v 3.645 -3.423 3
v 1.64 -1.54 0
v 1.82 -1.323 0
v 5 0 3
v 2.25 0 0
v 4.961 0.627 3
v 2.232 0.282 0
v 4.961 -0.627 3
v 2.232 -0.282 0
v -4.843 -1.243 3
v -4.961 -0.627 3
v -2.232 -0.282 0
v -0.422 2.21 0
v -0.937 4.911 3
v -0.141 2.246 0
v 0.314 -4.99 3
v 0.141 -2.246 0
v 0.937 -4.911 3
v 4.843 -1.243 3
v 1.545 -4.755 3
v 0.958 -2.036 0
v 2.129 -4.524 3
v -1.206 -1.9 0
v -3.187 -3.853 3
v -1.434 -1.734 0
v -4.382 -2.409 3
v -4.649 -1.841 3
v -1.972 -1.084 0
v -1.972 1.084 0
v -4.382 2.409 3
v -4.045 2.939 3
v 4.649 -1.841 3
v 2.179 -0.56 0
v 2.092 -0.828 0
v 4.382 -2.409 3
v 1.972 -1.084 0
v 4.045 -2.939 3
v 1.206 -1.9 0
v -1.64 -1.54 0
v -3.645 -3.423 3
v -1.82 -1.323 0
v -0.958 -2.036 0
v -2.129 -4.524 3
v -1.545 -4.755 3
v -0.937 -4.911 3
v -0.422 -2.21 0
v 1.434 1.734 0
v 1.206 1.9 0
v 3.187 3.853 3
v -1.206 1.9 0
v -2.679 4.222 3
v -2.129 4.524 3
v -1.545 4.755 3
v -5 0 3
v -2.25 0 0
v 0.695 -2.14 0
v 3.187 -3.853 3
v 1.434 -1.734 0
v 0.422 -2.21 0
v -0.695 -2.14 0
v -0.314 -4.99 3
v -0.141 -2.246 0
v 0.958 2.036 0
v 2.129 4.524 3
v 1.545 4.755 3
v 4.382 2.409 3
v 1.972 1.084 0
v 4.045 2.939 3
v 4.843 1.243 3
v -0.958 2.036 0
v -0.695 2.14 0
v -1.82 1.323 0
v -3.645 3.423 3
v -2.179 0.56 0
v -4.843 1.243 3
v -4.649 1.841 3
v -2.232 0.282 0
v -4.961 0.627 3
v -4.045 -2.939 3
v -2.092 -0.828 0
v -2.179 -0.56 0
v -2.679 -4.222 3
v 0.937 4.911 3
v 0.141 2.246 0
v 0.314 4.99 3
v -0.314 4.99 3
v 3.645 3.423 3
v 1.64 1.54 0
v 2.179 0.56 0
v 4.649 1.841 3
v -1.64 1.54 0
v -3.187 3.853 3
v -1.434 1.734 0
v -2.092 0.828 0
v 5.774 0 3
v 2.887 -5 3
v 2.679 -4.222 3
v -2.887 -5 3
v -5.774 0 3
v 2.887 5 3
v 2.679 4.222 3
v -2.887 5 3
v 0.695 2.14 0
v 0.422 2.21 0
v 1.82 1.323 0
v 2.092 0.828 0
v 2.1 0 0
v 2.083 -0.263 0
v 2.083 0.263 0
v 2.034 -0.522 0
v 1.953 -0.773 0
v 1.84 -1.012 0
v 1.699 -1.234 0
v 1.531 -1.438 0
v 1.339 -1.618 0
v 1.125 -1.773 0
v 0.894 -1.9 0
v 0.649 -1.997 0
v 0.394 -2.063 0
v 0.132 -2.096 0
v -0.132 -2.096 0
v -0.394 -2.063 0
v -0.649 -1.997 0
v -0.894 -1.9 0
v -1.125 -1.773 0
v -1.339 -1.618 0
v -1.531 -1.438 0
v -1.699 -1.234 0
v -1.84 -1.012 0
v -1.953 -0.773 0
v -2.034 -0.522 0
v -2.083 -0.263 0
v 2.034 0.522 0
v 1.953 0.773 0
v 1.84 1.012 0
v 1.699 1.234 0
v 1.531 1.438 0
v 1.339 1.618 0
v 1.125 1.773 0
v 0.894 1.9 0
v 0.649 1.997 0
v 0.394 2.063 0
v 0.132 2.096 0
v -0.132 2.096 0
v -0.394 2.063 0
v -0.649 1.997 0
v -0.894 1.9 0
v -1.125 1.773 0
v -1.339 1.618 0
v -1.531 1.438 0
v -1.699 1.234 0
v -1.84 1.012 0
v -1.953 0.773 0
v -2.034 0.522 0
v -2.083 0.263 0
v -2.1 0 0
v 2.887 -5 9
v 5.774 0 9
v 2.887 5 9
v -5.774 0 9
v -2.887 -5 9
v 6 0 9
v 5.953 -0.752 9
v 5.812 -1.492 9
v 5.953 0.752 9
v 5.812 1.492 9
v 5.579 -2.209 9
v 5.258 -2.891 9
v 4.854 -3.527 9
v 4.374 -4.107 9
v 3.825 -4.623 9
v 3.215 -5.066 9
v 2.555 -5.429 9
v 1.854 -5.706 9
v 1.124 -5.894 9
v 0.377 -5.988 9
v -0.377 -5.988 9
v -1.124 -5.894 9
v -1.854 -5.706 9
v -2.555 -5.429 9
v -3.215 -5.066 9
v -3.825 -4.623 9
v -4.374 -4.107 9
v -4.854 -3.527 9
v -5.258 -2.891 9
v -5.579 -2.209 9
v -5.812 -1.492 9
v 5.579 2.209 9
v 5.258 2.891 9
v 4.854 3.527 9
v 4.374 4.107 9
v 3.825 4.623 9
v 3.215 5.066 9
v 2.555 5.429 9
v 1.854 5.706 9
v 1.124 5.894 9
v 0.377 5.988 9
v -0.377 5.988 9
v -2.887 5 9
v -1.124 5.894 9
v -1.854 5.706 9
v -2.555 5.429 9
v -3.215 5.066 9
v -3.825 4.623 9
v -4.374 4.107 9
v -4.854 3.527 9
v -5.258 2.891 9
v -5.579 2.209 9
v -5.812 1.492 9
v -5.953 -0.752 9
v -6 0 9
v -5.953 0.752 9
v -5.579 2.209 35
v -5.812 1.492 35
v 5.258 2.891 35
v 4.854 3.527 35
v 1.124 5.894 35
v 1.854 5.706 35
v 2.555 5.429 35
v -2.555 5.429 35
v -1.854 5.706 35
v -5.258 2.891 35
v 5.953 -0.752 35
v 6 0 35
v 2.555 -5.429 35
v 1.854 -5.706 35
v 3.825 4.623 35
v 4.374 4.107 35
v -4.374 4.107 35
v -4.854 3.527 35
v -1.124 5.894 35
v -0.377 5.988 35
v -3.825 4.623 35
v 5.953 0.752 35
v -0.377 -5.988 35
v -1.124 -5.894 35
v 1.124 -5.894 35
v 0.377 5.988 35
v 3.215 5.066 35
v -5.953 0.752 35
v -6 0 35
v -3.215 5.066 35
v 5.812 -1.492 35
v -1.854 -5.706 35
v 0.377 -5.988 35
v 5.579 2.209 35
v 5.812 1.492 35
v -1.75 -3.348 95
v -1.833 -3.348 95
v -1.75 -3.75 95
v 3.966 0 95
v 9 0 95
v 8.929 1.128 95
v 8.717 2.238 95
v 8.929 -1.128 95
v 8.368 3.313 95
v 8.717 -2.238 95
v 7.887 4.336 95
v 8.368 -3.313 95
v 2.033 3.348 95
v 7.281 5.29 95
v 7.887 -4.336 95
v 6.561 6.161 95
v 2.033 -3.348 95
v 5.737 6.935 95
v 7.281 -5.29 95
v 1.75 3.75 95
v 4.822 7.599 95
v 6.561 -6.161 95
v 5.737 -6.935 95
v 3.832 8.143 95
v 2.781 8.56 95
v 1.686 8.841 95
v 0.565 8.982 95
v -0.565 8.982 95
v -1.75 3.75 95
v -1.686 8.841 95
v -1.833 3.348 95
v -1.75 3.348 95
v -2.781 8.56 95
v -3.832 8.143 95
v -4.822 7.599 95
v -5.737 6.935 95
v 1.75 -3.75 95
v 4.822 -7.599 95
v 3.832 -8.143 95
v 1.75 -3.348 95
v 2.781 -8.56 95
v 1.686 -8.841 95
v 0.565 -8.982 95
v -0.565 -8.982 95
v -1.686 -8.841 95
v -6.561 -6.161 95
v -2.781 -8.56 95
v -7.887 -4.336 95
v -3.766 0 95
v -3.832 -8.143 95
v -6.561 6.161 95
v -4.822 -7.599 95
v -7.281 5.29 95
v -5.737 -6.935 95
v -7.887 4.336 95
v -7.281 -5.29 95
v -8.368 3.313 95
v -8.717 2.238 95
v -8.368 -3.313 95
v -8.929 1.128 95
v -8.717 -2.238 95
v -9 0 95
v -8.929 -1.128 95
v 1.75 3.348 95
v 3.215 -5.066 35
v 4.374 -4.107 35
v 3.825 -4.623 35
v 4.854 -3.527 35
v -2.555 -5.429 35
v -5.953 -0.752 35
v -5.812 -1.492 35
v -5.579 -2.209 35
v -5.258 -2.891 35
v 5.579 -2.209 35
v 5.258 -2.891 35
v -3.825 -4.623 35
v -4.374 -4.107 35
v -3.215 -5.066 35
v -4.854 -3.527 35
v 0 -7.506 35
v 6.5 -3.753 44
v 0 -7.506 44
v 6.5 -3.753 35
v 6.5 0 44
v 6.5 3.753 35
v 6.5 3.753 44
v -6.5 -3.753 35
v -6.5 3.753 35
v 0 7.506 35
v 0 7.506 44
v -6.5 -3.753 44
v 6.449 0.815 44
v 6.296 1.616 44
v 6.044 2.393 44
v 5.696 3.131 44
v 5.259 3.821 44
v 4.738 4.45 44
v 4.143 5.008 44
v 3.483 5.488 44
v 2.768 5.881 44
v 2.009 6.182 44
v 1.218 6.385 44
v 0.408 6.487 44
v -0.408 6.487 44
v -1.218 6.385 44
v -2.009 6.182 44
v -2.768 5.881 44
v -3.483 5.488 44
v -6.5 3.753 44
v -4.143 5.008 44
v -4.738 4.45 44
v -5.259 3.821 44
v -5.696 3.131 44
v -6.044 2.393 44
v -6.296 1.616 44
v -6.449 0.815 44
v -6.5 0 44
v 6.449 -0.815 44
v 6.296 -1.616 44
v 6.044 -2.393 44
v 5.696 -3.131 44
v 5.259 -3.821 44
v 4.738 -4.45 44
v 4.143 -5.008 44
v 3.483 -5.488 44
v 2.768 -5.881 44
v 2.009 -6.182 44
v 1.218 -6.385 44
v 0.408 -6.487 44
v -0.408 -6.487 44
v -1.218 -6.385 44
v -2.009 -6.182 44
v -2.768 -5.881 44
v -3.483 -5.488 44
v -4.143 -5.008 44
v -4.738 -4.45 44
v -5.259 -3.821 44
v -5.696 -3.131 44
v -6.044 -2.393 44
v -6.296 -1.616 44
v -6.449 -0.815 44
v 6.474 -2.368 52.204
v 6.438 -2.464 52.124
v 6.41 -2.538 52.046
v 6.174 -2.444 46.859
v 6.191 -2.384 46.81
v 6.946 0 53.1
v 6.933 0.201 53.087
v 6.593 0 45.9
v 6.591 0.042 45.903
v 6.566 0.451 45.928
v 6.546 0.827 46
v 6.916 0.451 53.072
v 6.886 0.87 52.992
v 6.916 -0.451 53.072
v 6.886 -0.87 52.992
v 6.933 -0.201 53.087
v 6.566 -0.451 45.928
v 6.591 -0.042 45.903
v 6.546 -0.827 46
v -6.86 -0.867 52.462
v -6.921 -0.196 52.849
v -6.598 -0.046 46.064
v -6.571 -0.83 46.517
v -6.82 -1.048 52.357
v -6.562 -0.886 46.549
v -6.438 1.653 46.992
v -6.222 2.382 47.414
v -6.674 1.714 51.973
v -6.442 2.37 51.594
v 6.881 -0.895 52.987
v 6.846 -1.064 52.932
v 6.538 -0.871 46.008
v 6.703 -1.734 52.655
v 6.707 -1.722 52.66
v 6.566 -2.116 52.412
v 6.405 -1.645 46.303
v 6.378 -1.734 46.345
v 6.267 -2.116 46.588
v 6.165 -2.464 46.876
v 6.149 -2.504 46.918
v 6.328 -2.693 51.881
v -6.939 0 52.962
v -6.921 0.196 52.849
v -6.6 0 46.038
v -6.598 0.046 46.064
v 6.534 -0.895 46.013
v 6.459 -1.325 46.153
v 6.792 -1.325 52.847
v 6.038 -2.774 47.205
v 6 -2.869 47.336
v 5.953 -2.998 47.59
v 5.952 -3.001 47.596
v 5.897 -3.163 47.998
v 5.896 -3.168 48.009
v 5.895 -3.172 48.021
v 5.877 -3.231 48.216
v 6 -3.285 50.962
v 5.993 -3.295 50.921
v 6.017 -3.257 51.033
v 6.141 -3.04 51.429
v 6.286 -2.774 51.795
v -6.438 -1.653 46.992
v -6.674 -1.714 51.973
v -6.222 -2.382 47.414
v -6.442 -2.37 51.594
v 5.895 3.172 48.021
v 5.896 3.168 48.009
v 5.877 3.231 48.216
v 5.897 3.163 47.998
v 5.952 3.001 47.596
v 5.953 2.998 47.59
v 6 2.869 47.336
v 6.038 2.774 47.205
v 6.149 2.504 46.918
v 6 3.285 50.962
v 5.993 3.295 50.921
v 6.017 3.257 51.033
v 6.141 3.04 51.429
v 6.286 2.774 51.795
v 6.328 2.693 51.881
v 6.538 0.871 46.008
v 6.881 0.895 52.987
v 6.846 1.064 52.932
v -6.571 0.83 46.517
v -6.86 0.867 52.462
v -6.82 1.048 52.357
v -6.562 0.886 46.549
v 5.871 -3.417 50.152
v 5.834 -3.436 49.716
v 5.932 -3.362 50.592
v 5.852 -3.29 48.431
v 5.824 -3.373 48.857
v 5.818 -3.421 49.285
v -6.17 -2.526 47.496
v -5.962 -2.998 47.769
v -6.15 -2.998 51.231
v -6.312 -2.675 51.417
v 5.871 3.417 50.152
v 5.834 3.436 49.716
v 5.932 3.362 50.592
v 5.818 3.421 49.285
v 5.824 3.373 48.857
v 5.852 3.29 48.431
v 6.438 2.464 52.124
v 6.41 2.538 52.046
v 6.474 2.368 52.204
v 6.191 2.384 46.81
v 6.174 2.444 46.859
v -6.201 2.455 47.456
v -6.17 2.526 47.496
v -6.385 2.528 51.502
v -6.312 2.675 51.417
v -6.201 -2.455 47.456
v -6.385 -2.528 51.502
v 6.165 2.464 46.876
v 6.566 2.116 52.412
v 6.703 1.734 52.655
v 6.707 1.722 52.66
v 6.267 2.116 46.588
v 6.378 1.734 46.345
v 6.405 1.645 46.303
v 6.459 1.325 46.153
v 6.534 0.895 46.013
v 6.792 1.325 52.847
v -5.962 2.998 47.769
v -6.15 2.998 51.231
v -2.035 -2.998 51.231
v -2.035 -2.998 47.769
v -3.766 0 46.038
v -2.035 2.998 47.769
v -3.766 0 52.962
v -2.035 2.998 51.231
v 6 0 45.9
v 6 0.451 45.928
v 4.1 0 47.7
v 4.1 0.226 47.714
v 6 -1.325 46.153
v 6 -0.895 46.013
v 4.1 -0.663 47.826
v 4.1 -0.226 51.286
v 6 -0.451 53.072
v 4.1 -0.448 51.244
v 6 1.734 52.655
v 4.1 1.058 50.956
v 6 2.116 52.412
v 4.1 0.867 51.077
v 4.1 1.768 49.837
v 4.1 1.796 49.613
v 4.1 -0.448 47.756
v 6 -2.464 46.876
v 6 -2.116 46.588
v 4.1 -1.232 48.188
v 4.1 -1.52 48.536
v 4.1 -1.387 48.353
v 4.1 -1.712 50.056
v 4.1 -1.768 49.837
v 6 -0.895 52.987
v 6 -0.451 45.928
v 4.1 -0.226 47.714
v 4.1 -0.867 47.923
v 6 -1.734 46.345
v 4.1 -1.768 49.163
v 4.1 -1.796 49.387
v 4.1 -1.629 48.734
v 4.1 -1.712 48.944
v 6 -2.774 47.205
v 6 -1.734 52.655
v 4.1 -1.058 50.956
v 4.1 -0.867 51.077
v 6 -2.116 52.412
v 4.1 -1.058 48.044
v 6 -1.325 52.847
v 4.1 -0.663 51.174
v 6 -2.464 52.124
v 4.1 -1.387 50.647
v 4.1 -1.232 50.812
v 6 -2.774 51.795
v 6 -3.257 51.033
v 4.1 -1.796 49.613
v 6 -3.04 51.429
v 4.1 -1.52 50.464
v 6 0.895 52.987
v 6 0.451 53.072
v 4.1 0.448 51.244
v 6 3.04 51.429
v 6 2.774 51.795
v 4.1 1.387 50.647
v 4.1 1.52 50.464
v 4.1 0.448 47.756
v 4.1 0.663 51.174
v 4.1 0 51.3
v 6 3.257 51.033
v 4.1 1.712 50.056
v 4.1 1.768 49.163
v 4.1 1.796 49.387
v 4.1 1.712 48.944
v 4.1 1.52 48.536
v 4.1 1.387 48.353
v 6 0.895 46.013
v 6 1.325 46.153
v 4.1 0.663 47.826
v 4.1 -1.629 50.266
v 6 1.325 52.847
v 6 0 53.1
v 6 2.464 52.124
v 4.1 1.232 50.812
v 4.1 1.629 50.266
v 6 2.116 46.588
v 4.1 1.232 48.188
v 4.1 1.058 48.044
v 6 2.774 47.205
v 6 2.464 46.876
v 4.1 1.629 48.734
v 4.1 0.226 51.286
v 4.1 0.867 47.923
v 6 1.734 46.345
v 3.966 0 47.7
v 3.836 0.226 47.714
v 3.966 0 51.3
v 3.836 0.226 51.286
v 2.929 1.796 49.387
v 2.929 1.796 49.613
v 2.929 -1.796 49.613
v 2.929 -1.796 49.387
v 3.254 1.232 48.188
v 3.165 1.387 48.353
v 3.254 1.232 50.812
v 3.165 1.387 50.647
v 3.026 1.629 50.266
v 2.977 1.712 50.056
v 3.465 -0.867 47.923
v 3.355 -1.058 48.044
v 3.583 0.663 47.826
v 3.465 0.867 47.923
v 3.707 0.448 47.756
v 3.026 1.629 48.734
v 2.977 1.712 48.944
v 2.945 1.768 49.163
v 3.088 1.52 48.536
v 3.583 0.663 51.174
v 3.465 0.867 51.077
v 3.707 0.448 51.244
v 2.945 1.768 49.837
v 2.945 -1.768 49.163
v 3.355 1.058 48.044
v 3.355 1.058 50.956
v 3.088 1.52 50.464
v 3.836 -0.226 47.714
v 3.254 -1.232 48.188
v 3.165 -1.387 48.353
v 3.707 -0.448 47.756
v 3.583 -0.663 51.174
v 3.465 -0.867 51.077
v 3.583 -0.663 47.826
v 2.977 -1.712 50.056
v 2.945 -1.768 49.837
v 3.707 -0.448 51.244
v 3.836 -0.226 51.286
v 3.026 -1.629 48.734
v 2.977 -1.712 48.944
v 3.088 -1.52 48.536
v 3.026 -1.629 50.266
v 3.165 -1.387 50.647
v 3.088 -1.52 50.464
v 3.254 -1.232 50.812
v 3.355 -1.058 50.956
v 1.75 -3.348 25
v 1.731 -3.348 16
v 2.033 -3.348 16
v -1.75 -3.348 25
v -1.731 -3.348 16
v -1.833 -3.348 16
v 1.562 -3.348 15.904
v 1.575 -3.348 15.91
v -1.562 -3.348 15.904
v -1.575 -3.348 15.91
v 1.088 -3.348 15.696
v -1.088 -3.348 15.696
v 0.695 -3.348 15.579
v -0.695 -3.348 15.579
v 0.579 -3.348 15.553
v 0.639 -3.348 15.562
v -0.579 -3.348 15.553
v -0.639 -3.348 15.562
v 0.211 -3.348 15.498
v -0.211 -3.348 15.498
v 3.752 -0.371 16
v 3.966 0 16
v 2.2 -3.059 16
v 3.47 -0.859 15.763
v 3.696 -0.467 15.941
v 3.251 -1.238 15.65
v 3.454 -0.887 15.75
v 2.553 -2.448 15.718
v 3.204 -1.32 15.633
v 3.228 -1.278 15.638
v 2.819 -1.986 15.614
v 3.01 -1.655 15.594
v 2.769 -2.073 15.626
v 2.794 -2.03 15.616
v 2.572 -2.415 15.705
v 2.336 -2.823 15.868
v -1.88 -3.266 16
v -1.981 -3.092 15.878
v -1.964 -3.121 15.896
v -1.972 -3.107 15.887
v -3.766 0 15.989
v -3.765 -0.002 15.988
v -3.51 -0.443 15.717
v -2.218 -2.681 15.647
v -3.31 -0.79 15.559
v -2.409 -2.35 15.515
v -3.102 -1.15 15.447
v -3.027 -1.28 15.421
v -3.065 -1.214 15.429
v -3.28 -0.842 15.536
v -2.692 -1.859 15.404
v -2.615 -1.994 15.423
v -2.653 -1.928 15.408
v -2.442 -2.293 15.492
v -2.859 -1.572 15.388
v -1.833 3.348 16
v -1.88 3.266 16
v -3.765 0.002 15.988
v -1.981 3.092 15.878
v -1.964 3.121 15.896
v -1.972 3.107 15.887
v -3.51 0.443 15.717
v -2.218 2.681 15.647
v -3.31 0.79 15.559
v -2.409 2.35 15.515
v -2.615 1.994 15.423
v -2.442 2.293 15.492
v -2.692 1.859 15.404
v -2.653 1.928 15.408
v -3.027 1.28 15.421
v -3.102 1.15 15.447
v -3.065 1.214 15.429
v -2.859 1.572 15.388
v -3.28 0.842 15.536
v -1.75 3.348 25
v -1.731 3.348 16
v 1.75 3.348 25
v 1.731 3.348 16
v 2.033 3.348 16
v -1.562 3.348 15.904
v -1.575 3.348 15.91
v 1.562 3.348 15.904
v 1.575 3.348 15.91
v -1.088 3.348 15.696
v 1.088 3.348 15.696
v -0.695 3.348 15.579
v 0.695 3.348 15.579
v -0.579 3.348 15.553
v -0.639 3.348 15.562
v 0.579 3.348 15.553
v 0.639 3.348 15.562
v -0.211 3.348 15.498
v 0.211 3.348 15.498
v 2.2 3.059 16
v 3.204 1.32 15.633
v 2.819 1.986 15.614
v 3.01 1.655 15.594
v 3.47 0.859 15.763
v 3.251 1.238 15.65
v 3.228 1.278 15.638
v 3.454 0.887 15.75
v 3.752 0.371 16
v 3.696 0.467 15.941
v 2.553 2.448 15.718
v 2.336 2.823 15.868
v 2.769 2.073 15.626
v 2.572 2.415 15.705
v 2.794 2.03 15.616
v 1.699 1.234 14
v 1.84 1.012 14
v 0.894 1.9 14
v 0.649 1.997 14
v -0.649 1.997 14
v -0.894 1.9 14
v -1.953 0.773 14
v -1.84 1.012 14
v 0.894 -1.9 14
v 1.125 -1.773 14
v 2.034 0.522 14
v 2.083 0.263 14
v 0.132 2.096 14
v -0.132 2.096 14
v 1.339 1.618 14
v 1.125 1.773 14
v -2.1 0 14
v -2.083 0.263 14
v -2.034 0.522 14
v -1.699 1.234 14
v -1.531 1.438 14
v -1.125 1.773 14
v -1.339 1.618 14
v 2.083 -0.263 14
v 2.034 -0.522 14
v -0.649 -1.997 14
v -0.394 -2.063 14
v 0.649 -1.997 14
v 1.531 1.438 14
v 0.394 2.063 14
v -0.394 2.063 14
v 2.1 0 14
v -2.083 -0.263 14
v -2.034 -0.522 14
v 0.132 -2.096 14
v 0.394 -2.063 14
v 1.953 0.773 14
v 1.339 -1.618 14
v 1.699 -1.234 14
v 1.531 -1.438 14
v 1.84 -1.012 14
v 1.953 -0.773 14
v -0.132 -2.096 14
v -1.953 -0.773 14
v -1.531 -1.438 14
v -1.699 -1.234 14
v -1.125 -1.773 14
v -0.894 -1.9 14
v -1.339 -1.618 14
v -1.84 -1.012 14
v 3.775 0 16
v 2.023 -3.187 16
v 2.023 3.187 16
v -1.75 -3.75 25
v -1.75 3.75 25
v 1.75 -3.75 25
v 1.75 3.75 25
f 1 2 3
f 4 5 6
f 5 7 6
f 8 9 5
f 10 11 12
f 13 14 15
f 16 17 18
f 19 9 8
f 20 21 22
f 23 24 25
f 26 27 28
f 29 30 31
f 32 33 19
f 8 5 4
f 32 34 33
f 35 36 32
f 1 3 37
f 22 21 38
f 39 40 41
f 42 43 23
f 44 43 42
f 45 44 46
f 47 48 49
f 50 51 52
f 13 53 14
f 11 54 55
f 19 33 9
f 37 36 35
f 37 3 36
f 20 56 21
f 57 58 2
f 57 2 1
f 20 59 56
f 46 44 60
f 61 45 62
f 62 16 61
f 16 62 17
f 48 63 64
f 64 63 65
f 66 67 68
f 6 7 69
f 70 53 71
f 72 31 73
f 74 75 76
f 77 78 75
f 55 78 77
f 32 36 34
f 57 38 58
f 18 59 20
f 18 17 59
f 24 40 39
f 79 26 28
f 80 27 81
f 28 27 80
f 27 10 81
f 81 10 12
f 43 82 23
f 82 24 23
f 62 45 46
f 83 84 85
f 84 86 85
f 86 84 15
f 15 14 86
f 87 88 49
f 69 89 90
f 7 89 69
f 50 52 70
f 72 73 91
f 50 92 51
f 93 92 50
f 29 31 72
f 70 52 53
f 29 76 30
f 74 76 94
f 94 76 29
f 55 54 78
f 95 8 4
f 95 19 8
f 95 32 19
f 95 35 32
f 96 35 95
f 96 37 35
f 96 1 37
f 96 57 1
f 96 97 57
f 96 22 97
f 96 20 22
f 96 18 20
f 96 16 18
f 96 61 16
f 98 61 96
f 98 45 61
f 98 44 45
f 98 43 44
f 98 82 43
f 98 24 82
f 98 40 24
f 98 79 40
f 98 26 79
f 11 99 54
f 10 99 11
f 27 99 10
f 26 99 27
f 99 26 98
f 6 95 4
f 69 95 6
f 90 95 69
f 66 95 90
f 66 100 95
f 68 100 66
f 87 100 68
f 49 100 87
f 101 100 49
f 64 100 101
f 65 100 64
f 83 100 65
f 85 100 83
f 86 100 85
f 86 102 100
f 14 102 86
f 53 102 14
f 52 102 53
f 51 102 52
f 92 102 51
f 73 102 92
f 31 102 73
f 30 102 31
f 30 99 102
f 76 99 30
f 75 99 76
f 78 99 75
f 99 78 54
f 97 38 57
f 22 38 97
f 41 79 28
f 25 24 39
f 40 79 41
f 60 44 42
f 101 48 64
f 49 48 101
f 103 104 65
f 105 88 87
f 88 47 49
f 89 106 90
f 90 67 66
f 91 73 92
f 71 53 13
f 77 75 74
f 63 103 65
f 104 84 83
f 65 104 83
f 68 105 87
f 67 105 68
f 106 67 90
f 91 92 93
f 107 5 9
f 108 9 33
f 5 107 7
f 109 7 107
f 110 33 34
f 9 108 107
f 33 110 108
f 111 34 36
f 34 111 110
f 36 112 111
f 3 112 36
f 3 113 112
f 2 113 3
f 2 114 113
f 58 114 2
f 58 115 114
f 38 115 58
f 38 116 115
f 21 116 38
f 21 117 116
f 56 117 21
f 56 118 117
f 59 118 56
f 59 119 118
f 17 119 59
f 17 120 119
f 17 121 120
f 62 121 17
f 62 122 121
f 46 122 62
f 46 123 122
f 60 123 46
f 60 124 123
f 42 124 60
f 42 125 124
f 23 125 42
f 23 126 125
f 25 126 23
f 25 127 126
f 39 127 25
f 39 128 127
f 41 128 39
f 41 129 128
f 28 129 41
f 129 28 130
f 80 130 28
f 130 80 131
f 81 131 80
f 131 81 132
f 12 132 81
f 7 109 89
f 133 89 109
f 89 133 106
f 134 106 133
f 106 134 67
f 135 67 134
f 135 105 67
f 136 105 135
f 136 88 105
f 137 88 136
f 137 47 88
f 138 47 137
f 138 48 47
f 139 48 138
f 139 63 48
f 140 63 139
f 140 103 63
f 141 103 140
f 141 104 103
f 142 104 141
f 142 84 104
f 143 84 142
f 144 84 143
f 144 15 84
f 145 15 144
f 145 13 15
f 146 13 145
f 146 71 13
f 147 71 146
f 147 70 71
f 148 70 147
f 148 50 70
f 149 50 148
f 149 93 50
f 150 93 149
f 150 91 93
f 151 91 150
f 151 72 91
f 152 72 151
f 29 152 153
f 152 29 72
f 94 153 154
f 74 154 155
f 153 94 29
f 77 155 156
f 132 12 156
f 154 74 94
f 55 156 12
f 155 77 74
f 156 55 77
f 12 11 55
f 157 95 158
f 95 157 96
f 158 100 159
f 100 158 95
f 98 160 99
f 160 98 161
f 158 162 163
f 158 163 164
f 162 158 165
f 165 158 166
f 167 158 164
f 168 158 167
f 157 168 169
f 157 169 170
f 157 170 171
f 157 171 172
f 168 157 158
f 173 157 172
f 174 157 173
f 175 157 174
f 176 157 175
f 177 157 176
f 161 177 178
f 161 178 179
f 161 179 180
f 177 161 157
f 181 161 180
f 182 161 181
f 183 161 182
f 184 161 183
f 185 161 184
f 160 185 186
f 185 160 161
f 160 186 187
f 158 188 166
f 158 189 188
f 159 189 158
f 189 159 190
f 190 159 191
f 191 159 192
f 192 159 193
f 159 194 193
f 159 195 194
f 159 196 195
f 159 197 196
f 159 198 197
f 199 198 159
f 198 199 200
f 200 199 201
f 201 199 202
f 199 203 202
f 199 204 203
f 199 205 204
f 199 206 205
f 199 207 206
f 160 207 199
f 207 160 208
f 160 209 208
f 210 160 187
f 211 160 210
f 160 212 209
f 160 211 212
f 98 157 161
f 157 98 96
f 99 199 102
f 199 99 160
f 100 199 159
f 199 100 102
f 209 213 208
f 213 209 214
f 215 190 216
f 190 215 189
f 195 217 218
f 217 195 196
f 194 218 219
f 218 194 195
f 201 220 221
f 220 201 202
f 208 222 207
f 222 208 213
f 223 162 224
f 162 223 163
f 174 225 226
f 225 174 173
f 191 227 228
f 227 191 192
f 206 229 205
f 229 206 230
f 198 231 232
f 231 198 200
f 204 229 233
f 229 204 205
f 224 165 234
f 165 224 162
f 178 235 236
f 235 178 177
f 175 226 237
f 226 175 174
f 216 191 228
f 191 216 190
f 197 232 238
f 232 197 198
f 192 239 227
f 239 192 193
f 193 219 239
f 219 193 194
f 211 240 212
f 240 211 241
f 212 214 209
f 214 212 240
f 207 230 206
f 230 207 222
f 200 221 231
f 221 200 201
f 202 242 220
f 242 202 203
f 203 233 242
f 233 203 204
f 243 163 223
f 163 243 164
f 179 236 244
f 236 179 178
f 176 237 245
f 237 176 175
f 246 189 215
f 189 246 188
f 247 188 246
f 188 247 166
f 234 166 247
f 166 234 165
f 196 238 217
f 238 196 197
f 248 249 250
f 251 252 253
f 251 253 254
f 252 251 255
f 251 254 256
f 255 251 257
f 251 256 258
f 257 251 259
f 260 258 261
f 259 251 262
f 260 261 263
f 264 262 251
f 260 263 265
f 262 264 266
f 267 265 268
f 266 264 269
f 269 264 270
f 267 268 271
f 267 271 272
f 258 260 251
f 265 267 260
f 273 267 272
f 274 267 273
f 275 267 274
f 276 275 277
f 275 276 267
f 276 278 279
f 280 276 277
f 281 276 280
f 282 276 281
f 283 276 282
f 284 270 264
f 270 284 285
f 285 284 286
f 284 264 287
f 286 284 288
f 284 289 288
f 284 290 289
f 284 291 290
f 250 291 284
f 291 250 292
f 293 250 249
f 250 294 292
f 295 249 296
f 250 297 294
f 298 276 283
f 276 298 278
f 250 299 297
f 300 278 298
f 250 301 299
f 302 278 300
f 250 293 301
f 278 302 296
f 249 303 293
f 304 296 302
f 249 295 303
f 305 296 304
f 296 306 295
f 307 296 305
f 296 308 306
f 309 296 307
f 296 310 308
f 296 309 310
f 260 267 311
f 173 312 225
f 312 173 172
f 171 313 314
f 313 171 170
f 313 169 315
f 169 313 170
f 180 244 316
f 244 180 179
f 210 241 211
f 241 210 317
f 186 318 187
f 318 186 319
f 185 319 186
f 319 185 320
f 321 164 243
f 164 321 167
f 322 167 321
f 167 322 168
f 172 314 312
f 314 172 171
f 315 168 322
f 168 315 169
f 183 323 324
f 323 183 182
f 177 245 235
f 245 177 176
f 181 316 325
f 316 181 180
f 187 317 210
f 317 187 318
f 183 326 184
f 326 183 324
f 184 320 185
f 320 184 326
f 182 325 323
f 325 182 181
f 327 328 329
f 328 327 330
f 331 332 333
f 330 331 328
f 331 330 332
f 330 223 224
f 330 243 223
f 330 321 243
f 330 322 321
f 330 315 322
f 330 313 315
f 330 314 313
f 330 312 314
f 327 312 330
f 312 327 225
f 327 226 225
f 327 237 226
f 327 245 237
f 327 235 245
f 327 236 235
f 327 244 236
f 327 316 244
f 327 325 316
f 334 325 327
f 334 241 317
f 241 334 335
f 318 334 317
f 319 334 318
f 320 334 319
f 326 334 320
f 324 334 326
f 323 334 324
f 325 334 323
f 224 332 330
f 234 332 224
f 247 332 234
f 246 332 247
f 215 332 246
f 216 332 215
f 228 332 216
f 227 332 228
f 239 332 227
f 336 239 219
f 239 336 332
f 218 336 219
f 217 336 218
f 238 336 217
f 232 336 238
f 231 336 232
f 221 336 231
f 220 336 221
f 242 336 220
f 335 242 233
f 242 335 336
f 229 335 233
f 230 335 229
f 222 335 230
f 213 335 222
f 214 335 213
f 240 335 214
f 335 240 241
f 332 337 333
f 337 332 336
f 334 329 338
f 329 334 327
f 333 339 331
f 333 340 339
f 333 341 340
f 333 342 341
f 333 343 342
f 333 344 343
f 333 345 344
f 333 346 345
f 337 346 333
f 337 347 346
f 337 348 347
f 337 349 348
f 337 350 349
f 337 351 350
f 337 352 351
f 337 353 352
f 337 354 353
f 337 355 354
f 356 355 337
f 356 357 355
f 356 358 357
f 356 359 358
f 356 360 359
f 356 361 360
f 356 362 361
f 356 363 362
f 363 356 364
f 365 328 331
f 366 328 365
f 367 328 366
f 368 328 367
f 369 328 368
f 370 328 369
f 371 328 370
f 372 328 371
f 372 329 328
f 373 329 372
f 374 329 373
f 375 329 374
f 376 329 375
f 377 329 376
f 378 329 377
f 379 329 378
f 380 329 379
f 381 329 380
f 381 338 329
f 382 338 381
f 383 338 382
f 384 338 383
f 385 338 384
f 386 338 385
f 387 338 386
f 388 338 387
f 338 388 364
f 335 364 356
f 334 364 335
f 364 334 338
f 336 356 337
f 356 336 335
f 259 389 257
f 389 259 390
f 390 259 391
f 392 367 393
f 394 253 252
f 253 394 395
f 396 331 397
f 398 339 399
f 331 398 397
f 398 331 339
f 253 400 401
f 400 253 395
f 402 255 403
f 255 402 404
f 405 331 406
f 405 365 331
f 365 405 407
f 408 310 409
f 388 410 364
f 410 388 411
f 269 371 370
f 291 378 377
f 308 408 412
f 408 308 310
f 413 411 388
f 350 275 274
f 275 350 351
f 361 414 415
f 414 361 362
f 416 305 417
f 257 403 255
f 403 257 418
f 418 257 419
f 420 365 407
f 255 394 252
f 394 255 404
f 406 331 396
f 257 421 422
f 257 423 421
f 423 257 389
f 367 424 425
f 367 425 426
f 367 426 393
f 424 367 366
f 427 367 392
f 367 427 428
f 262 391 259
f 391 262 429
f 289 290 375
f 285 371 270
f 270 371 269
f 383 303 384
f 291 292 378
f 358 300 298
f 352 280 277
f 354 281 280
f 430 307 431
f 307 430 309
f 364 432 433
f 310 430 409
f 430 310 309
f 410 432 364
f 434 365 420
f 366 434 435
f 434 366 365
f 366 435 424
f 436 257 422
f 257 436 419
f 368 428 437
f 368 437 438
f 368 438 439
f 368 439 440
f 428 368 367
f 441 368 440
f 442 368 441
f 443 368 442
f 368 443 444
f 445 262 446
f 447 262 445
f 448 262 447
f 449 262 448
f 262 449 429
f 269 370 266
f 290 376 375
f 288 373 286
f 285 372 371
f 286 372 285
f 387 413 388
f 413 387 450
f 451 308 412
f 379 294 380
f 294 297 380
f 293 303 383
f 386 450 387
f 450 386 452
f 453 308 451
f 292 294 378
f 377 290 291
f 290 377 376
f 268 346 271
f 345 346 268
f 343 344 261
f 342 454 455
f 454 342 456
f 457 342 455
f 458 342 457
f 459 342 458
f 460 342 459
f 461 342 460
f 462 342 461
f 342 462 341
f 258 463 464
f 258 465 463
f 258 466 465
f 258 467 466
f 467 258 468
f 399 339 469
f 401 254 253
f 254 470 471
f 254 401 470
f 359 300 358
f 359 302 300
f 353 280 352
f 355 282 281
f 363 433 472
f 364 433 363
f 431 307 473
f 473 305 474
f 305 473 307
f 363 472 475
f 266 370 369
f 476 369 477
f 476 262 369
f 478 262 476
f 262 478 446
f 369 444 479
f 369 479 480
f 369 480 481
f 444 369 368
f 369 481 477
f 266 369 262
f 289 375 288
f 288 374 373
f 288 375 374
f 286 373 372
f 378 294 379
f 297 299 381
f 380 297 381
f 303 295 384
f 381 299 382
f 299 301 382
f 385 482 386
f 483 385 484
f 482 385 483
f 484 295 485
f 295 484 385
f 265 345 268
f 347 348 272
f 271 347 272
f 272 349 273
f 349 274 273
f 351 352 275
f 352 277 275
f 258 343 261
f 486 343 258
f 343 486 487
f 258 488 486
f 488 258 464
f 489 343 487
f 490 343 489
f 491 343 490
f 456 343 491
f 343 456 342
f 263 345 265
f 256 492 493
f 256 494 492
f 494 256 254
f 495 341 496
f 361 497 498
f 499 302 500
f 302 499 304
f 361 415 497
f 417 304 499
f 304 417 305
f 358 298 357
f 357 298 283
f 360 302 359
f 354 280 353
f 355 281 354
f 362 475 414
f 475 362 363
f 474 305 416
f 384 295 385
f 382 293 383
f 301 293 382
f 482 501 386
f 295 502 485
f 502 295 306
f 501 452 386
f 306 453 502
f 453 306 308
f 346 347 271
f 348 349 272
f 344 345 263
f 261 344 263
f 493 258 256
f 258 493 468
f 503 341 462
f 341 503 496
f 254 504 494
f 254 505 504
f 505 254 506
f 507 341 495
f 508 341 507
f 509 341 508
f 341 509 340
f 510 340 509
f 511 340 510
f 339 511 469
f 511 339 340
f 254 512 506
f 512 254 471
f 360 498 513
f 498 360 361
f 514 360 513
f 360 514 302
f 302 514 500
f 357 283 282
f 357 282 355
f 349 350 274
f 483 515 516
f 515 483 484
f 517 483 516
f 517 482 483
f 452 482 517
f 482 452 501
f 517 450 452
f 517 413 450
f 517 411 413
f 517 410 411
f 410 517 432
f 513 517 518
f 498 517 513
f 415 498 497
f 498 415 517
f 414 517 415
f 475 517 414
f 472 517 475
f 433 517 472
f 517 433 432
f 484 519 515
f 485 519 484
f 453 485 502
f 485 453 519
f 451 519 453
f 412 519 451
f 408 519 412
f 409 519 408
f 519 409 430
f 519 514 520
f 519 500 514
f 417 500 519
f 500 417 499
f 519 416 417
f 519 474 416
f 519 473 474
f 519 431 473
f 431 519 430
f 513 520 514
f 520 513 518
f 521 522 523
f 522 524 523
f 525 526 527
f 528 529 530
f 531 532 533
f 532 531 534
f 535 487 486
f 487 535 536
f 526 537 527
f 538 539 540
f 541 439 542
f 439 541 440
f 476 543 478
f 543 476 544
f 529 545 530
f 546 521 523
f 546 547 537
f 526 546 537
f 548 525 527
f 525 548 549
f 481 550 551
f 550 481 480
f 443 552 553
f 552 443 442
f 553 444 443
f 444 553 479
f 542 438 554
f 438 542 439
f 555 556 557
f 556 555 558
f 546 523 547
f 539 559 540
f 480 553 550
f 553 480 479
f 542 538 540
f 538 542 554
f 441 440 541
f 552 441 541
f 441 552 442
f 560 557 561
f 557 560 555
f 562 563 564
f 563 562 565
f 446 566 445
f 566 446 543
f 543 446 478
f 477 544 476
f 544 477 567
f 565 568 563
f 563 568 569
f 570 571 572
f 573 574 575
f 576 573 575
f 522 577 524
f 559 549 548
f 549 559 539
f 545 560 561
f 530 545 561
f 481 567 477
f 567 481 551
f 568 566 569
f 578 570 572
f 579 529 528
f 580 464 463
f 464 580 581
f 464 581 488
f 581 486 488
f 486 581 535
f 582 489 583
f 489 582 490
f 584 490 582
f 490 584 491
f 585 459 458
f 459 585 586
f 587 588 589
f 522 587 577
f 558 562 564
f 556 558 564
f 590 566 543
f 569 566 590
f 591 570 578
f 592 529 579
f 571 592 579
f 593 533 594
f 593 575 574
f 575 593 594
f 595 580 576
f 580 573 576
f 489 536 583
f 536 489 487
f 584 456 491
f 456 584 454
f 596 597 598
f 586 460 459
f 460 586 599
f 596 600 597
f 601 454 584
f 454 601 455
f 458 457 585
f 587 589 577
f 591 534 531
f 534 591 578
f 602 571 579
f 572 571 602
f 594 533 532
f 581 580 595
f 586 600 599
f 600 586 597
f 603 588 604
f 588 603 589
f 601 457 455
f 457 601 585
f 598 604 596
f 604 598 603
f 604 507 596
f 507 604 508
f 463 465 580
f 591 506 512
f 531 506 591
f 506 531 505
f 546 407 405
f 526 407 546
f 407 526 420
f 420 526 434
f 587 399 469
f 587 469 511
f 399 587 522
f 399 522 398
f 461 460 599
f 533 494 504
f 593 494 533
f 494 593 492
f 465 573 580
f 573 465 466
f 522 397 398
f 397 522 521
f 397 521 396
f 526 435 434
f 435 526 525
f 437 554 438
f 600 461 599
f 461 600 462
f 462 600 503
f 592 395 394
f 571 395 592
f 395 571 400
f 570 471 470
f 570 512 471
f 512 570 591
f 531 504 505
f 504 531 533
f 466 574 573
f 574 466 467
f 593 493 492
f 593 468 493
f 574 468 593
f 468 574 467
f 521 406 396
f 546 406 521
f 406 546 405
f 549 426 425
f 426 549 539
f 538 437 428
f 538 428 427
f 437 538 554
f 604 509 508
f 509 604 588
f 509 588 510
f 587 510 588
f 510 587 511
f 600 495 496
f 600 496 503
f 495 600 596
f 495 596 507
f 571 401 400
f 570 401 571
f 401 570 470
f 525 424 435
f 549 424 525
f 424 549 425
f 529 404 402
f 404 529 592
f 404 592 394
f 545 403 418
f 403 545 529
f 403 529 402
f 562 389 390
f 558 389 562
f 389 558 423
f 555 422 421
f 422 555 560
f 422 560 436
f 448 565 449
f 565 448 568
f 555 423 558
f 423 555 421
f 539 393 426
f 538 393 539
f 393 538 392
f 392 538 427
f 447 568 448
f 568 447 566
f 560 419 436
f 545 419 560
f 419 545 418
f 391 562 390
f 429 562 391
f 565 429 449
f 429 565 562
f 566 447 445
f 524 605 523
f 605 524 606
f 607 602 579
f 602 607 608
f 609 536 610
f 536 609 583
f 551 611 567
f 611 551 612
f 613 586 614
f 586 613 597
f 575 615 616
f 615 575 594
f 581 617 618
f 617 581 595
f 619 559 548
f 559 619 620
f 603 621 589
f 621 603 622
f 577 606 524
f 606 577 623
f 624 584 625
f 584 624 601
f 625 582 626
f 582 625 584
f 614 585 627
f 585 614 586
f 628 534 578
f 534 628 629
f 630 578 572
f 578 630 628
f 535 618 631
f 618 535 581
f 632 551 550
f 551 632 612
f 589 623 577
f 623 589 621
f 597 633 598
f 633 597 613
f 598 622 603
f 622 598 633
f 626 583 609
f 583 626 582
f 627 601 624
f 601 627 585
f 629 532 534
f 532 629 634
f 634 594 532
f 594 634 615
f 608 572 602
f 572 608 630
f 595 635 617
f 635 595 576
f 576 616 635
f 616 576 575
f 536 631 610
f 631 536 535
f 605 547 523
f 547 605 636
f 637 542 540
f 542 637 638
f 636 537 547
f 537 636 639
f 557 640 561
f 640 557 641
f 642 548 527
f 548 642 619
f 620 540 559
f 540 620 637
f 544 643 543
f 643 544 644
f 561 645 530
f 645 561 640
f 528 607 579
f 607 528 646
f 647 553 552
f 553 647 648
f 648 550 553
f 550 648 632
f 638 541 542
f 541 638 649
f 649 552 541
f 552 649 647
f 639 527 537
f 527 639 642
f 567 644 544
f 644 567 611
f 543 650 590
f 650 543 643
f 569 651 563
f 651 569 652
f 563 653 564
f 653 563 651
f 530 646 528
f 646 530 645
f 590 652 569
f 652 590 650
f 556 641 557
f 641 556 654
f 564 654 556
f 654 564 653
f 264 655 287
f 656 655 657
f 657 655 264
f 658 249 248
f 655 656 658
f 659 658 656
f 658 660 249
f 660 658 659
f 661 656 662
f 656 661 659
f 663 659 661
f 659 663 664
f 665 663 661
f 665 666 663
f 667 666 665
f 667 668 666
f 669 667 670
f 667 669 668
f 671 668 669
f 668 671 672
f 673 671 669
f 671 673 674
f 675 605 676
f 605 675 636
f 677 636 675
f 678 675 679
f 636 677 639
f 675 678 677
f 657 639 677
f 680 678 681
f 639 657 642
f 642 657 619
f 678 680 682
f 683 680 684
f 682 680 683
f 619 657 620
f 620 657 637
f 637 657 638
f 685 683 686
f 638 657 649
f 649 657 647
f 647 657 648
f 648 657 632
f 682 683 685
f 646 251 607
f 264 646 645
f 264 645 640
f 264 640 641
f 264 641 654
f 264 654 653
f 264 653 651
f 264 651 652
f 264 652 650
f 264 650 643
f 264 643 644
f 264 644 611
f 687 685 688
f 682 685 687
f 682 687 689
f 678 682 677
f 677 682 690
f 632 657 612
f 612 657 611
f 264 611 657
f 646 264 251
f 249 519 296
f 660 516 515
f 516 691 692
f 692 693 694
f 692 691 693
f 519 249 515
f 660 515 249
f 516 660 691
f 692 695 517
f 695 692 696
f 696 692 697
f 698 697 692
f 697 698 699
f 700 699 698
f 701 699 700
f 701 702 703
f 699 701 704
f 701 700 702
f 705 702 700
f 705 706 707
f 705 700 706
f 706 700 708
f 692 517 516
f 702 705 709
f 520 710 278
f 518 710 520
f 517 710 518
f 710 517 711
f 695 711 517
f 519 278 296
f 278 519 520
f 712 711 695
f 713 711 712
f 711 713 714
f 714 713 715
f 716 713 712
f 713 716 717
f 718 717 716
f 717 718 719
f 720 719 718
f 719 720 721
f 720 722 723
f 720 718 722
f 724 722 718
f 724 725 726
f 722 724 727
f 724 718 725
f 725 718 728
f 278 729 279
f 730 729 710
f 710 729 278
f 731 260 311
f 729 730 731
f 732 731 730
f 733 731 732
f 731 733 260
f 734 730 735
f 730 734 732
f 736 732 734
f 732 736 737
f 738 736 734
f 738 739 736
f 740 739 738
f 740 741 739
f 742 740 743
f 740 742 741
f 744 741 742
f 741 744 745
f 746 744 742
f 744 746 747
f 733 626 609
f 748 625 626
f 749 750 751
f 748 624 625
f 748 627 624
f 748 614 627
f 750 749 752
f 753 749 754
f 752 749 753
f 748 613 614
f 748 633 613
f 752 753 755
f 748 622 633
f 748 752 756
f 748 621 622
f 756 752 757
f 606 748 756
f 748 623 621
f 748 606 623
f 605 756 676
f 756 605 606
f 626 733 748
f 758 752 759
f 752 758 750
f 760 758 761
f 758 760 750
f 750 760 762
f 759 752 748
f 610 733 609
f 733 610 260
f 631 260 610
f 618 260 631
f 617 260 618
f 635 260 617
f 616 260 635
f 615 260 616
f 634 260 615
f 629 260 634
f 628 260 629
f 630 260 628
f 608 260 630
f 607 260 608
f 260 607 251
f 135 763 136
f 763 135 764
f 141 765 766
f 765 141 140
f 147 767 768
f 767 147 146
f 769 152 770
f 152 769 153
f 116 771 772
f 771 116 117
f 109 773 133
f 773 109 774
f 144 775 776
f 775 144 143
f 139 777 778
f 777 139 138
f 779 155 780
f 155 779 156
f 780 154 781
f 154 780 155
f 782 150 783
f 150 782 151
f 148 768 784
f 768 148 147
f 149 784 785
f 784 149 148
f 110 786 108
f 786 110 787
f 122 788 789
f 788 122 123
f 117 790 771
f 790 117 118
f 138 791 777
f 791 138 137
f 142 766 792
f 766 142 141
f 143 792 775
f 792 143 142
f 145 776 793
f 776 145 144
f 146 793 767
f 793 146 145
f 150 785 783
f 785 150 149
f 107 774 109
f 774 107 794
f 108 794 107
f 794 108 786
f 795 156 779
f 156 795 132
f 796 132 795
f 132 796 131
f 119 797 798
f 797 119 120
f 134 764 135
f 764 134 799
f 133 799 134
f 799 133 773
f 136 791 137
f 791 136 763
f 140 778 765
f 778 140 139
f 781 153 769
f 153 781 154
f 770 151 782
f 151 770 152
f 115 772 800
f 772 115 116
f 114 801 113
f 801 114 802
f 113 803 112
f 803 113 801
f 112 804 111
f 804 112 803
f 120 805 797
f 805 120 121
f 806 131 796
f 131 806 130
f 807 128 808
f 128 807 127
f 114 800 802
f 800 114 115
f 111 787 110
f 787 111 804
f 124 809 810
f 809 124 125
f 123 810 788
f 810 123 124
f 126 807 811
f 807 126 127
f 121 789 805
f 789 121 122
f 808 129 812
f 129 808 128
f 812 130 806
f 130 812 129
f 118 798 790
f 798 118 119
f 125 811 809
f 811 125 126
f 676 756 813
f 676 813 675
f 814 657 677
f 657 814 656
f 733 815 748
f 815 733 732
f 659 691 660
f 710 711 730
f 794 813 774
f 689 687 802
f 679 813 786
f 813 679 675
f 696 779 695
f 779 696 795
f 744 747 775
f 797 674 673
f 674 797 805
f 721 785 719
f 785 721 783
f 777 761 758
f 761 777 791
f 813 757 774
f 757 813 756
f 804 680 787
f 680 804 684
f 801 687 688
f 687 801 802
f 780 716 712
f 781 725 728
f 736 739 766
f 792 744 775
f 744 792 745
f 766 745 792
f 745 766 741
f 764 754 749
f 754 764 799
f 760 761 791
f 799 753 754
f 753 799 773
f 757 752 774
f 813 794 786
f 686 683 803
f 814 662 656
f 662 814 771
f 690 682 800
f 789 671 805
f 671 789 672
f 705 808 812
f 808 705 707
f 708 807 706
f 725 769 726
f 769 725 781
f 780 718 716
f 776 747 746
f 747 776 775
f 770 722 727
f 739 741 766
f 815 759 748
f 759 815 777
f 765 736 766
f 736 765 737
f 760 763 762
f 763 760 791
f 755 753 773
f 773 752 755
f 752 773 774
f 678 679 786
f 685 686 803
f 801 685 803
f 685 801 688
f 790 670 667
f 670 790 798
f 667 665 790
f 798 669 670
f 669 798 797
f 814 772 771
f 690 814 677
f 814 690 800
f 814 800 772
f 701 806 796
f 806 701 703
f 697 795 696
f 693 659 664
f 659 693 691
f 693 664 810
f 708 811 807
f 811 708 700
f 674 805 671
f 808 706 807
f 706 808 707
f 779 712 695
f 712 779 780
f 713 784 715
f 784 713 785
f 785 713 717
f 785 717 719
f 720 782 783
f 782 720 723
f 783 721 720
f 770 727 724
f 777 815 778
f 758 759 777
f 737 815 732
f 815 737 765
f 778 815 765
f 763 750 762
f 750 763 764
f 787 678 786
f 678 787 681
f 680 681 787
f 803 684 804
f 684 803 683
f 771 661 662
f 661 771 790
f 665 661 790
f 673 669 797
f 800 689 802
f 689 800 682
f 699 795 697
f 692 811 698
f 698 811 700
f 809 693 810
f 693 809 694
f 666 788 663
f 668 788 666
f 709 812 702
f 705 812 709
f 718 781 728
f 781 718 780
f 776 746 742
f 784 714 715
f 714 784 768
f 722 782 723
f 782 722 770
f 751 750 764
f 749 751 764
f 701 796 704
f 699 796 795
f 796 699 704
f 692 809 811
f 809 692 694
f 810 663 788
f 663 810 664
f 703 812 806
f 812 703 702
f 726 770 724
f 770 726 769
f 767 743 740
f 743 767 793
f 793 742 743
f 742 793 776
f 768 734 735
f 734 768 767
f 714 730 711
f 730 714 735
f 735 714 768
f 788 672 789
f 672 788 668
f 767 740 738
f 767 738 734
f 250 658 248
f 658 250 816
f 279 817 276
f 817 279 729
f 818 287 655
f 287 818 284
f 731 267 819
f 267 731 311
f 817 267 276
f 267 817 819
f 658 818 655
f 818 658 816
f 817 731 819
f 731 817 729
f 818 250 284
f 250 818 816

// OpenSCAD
$fn = 50;


difference() {
	union() {
		cylinder(h = 3, r1 = 2.2500000000, r2 = 5.0000000000);
		translate(v = [0, 0, 3]) {
			linear_extrude(height = 6) {
				polygon(points = [[5.7735000000, 0.0000000000], [2.8867500000, 4.9999976687], [-2.8867500000, 4.9999976687], [-5.7735000000, 0.0000000000], [-2.8867500000, -4.9999976687], [2.8867500000, -4.9999976687]]);
			}
		}
		translate(v = [0, 0, 9.0000000000]) {
			cylinder(h = 86, r = 6.0000000000);
		}
		translate(v = [0, 0, 35]) {
			rotate(a = [0, 0, 30.0000000000]) {
				linear_extrude(height = 9) {
					polygon(points = [[7.5055500000, 0.0000000000], [3.7527750000, 6.4999969694], [-3.7527750000, 6.4999969694], [-7.5055500000, 0.0000000000], [-3.7527750000, -6.4999969694], [3.7527750000, -6.4999969694]]);
				}
			}
		}
		translate(v = [0, 0, 44.0000000000]) {
			cylinder(h = 51, r1 = 6.5000000000, r2 = 9.0000000000);
		}
	}
	union() {
		translate(v = [6.0000000000, 0, 49.5000000000]) {
			rotate(a = [0, 90, 0]) {
				difference() {
					union() {
						translate(v = [0, 0, -5.5000000000]) {
							rotate(a = [0, 0, 0]) {
								difference() {
									union() {
										translate(v = [0, 0, -250]) {
											linear_extrude(height = 250) {
												polygon(points = [[3.4620000000, 0.0000000000], [1.7310000000, 2.9981799479], [-1.7310000000, 2.9981799479], [-3.4620000000, 0.0000000000], [-1.7310000000, -2.9981799479], [1.7310000000, -2.9981799479]]);
											}
										}
									}
									union();
								}
							}
						}
						translate(v = [0, 0, -5.0000000000]) {
							rotate(a = [0, 0, 0]) {
								difference() {
									union() {
										translate(v = [0, 0, -250]) {
											linear_extrude(height = 250) {
												polygon(points = [[3.4620000000, 0.0000000000], [1.7310000000, 2.9981799479], [-1.7310000000, 2.9981799479], [-3.4620000000, 0.0000000000], [-1.7310000000, -2.9981799479], [1.7310000000, -2.9981799479]]);
											}
										}
									}
									union();
								}
							}
						}
						translate(v = [0, 0, -5.5000000000]) {
							rotate(a = [0, 0, 0]) {
								difference() {
									union() {
										translate(v = [0, 0, -250]) {
											linear_extrude(height = 250) {
												polygon(points = [[3.4620000000, 0.0000000000], [1.7310000000, 2.9981799479], [-1.7310000000, 2.9981799479], [-3.4620000000, 0.0000000000], [-1.7310000000, -2.9981799479], [1.7310000000, -2.9981799479]]);
											}
										}
									}
									union();
								}
							}
						}
						translate(v = [0, 0, -8.0000000000]) {
							cylinder(h = 8, r = 1.5000000000);
						}
						translate(v = [0, 0, -1.9000000000]) {
							cylinder(h = 1.9000000000, r1 = 1.8000000000, r2 = 3.6000000000);
						}
						cylinder(h = 250, r = 3.6000000000);
						translate(v = [0, 0, -8.0000000000]) {
							cylinder(h = 8, r = 1.8000000000);
						}
						translate(v = [0, 0, -8.0000000000]) {
							cylinder(h = 8, r = 1.5000000000);
						}
					}
					union();
				}
			}
		}
		translate(v = [0, 0, 14]) {
			rotate(a = [0, 0, 0]) {
				difference() {
					union() {
						translate(v = [0.1000000000, 0, 0]) {
							linear_extrude(height = 228.2000000000) {
								polygon(points = [[3.8658550000, 0.0000000000], [1.9329275000, 3.3479286373], [-1.9329275000, 3.3479286373], [-3.8658550000, 0.0000000000], [-1.9329275000, -3.3479286373], [1.9329275000, -3.3479286373]]);
							}
						}
						translate(v = [0, 0, -71.8000000000]) {
							cylinder(h = 100, r = 2.1000000000);
						}
					}
					union() {
						difference() {
							cylinder(h = 2, r1 = 10.1000000000, r2 = 11.7750000000);
							cylinder(h = 2, r1 = 2.1000000000, r2 = 3.7750000000);
						}
					}
				}
			}
		}
		#translate(v = [-1.7500000000, -3.7500000000, 25]) {
			cube(size = [3.5000000000, 7.5000000000, 70]);
		}
	}
}
